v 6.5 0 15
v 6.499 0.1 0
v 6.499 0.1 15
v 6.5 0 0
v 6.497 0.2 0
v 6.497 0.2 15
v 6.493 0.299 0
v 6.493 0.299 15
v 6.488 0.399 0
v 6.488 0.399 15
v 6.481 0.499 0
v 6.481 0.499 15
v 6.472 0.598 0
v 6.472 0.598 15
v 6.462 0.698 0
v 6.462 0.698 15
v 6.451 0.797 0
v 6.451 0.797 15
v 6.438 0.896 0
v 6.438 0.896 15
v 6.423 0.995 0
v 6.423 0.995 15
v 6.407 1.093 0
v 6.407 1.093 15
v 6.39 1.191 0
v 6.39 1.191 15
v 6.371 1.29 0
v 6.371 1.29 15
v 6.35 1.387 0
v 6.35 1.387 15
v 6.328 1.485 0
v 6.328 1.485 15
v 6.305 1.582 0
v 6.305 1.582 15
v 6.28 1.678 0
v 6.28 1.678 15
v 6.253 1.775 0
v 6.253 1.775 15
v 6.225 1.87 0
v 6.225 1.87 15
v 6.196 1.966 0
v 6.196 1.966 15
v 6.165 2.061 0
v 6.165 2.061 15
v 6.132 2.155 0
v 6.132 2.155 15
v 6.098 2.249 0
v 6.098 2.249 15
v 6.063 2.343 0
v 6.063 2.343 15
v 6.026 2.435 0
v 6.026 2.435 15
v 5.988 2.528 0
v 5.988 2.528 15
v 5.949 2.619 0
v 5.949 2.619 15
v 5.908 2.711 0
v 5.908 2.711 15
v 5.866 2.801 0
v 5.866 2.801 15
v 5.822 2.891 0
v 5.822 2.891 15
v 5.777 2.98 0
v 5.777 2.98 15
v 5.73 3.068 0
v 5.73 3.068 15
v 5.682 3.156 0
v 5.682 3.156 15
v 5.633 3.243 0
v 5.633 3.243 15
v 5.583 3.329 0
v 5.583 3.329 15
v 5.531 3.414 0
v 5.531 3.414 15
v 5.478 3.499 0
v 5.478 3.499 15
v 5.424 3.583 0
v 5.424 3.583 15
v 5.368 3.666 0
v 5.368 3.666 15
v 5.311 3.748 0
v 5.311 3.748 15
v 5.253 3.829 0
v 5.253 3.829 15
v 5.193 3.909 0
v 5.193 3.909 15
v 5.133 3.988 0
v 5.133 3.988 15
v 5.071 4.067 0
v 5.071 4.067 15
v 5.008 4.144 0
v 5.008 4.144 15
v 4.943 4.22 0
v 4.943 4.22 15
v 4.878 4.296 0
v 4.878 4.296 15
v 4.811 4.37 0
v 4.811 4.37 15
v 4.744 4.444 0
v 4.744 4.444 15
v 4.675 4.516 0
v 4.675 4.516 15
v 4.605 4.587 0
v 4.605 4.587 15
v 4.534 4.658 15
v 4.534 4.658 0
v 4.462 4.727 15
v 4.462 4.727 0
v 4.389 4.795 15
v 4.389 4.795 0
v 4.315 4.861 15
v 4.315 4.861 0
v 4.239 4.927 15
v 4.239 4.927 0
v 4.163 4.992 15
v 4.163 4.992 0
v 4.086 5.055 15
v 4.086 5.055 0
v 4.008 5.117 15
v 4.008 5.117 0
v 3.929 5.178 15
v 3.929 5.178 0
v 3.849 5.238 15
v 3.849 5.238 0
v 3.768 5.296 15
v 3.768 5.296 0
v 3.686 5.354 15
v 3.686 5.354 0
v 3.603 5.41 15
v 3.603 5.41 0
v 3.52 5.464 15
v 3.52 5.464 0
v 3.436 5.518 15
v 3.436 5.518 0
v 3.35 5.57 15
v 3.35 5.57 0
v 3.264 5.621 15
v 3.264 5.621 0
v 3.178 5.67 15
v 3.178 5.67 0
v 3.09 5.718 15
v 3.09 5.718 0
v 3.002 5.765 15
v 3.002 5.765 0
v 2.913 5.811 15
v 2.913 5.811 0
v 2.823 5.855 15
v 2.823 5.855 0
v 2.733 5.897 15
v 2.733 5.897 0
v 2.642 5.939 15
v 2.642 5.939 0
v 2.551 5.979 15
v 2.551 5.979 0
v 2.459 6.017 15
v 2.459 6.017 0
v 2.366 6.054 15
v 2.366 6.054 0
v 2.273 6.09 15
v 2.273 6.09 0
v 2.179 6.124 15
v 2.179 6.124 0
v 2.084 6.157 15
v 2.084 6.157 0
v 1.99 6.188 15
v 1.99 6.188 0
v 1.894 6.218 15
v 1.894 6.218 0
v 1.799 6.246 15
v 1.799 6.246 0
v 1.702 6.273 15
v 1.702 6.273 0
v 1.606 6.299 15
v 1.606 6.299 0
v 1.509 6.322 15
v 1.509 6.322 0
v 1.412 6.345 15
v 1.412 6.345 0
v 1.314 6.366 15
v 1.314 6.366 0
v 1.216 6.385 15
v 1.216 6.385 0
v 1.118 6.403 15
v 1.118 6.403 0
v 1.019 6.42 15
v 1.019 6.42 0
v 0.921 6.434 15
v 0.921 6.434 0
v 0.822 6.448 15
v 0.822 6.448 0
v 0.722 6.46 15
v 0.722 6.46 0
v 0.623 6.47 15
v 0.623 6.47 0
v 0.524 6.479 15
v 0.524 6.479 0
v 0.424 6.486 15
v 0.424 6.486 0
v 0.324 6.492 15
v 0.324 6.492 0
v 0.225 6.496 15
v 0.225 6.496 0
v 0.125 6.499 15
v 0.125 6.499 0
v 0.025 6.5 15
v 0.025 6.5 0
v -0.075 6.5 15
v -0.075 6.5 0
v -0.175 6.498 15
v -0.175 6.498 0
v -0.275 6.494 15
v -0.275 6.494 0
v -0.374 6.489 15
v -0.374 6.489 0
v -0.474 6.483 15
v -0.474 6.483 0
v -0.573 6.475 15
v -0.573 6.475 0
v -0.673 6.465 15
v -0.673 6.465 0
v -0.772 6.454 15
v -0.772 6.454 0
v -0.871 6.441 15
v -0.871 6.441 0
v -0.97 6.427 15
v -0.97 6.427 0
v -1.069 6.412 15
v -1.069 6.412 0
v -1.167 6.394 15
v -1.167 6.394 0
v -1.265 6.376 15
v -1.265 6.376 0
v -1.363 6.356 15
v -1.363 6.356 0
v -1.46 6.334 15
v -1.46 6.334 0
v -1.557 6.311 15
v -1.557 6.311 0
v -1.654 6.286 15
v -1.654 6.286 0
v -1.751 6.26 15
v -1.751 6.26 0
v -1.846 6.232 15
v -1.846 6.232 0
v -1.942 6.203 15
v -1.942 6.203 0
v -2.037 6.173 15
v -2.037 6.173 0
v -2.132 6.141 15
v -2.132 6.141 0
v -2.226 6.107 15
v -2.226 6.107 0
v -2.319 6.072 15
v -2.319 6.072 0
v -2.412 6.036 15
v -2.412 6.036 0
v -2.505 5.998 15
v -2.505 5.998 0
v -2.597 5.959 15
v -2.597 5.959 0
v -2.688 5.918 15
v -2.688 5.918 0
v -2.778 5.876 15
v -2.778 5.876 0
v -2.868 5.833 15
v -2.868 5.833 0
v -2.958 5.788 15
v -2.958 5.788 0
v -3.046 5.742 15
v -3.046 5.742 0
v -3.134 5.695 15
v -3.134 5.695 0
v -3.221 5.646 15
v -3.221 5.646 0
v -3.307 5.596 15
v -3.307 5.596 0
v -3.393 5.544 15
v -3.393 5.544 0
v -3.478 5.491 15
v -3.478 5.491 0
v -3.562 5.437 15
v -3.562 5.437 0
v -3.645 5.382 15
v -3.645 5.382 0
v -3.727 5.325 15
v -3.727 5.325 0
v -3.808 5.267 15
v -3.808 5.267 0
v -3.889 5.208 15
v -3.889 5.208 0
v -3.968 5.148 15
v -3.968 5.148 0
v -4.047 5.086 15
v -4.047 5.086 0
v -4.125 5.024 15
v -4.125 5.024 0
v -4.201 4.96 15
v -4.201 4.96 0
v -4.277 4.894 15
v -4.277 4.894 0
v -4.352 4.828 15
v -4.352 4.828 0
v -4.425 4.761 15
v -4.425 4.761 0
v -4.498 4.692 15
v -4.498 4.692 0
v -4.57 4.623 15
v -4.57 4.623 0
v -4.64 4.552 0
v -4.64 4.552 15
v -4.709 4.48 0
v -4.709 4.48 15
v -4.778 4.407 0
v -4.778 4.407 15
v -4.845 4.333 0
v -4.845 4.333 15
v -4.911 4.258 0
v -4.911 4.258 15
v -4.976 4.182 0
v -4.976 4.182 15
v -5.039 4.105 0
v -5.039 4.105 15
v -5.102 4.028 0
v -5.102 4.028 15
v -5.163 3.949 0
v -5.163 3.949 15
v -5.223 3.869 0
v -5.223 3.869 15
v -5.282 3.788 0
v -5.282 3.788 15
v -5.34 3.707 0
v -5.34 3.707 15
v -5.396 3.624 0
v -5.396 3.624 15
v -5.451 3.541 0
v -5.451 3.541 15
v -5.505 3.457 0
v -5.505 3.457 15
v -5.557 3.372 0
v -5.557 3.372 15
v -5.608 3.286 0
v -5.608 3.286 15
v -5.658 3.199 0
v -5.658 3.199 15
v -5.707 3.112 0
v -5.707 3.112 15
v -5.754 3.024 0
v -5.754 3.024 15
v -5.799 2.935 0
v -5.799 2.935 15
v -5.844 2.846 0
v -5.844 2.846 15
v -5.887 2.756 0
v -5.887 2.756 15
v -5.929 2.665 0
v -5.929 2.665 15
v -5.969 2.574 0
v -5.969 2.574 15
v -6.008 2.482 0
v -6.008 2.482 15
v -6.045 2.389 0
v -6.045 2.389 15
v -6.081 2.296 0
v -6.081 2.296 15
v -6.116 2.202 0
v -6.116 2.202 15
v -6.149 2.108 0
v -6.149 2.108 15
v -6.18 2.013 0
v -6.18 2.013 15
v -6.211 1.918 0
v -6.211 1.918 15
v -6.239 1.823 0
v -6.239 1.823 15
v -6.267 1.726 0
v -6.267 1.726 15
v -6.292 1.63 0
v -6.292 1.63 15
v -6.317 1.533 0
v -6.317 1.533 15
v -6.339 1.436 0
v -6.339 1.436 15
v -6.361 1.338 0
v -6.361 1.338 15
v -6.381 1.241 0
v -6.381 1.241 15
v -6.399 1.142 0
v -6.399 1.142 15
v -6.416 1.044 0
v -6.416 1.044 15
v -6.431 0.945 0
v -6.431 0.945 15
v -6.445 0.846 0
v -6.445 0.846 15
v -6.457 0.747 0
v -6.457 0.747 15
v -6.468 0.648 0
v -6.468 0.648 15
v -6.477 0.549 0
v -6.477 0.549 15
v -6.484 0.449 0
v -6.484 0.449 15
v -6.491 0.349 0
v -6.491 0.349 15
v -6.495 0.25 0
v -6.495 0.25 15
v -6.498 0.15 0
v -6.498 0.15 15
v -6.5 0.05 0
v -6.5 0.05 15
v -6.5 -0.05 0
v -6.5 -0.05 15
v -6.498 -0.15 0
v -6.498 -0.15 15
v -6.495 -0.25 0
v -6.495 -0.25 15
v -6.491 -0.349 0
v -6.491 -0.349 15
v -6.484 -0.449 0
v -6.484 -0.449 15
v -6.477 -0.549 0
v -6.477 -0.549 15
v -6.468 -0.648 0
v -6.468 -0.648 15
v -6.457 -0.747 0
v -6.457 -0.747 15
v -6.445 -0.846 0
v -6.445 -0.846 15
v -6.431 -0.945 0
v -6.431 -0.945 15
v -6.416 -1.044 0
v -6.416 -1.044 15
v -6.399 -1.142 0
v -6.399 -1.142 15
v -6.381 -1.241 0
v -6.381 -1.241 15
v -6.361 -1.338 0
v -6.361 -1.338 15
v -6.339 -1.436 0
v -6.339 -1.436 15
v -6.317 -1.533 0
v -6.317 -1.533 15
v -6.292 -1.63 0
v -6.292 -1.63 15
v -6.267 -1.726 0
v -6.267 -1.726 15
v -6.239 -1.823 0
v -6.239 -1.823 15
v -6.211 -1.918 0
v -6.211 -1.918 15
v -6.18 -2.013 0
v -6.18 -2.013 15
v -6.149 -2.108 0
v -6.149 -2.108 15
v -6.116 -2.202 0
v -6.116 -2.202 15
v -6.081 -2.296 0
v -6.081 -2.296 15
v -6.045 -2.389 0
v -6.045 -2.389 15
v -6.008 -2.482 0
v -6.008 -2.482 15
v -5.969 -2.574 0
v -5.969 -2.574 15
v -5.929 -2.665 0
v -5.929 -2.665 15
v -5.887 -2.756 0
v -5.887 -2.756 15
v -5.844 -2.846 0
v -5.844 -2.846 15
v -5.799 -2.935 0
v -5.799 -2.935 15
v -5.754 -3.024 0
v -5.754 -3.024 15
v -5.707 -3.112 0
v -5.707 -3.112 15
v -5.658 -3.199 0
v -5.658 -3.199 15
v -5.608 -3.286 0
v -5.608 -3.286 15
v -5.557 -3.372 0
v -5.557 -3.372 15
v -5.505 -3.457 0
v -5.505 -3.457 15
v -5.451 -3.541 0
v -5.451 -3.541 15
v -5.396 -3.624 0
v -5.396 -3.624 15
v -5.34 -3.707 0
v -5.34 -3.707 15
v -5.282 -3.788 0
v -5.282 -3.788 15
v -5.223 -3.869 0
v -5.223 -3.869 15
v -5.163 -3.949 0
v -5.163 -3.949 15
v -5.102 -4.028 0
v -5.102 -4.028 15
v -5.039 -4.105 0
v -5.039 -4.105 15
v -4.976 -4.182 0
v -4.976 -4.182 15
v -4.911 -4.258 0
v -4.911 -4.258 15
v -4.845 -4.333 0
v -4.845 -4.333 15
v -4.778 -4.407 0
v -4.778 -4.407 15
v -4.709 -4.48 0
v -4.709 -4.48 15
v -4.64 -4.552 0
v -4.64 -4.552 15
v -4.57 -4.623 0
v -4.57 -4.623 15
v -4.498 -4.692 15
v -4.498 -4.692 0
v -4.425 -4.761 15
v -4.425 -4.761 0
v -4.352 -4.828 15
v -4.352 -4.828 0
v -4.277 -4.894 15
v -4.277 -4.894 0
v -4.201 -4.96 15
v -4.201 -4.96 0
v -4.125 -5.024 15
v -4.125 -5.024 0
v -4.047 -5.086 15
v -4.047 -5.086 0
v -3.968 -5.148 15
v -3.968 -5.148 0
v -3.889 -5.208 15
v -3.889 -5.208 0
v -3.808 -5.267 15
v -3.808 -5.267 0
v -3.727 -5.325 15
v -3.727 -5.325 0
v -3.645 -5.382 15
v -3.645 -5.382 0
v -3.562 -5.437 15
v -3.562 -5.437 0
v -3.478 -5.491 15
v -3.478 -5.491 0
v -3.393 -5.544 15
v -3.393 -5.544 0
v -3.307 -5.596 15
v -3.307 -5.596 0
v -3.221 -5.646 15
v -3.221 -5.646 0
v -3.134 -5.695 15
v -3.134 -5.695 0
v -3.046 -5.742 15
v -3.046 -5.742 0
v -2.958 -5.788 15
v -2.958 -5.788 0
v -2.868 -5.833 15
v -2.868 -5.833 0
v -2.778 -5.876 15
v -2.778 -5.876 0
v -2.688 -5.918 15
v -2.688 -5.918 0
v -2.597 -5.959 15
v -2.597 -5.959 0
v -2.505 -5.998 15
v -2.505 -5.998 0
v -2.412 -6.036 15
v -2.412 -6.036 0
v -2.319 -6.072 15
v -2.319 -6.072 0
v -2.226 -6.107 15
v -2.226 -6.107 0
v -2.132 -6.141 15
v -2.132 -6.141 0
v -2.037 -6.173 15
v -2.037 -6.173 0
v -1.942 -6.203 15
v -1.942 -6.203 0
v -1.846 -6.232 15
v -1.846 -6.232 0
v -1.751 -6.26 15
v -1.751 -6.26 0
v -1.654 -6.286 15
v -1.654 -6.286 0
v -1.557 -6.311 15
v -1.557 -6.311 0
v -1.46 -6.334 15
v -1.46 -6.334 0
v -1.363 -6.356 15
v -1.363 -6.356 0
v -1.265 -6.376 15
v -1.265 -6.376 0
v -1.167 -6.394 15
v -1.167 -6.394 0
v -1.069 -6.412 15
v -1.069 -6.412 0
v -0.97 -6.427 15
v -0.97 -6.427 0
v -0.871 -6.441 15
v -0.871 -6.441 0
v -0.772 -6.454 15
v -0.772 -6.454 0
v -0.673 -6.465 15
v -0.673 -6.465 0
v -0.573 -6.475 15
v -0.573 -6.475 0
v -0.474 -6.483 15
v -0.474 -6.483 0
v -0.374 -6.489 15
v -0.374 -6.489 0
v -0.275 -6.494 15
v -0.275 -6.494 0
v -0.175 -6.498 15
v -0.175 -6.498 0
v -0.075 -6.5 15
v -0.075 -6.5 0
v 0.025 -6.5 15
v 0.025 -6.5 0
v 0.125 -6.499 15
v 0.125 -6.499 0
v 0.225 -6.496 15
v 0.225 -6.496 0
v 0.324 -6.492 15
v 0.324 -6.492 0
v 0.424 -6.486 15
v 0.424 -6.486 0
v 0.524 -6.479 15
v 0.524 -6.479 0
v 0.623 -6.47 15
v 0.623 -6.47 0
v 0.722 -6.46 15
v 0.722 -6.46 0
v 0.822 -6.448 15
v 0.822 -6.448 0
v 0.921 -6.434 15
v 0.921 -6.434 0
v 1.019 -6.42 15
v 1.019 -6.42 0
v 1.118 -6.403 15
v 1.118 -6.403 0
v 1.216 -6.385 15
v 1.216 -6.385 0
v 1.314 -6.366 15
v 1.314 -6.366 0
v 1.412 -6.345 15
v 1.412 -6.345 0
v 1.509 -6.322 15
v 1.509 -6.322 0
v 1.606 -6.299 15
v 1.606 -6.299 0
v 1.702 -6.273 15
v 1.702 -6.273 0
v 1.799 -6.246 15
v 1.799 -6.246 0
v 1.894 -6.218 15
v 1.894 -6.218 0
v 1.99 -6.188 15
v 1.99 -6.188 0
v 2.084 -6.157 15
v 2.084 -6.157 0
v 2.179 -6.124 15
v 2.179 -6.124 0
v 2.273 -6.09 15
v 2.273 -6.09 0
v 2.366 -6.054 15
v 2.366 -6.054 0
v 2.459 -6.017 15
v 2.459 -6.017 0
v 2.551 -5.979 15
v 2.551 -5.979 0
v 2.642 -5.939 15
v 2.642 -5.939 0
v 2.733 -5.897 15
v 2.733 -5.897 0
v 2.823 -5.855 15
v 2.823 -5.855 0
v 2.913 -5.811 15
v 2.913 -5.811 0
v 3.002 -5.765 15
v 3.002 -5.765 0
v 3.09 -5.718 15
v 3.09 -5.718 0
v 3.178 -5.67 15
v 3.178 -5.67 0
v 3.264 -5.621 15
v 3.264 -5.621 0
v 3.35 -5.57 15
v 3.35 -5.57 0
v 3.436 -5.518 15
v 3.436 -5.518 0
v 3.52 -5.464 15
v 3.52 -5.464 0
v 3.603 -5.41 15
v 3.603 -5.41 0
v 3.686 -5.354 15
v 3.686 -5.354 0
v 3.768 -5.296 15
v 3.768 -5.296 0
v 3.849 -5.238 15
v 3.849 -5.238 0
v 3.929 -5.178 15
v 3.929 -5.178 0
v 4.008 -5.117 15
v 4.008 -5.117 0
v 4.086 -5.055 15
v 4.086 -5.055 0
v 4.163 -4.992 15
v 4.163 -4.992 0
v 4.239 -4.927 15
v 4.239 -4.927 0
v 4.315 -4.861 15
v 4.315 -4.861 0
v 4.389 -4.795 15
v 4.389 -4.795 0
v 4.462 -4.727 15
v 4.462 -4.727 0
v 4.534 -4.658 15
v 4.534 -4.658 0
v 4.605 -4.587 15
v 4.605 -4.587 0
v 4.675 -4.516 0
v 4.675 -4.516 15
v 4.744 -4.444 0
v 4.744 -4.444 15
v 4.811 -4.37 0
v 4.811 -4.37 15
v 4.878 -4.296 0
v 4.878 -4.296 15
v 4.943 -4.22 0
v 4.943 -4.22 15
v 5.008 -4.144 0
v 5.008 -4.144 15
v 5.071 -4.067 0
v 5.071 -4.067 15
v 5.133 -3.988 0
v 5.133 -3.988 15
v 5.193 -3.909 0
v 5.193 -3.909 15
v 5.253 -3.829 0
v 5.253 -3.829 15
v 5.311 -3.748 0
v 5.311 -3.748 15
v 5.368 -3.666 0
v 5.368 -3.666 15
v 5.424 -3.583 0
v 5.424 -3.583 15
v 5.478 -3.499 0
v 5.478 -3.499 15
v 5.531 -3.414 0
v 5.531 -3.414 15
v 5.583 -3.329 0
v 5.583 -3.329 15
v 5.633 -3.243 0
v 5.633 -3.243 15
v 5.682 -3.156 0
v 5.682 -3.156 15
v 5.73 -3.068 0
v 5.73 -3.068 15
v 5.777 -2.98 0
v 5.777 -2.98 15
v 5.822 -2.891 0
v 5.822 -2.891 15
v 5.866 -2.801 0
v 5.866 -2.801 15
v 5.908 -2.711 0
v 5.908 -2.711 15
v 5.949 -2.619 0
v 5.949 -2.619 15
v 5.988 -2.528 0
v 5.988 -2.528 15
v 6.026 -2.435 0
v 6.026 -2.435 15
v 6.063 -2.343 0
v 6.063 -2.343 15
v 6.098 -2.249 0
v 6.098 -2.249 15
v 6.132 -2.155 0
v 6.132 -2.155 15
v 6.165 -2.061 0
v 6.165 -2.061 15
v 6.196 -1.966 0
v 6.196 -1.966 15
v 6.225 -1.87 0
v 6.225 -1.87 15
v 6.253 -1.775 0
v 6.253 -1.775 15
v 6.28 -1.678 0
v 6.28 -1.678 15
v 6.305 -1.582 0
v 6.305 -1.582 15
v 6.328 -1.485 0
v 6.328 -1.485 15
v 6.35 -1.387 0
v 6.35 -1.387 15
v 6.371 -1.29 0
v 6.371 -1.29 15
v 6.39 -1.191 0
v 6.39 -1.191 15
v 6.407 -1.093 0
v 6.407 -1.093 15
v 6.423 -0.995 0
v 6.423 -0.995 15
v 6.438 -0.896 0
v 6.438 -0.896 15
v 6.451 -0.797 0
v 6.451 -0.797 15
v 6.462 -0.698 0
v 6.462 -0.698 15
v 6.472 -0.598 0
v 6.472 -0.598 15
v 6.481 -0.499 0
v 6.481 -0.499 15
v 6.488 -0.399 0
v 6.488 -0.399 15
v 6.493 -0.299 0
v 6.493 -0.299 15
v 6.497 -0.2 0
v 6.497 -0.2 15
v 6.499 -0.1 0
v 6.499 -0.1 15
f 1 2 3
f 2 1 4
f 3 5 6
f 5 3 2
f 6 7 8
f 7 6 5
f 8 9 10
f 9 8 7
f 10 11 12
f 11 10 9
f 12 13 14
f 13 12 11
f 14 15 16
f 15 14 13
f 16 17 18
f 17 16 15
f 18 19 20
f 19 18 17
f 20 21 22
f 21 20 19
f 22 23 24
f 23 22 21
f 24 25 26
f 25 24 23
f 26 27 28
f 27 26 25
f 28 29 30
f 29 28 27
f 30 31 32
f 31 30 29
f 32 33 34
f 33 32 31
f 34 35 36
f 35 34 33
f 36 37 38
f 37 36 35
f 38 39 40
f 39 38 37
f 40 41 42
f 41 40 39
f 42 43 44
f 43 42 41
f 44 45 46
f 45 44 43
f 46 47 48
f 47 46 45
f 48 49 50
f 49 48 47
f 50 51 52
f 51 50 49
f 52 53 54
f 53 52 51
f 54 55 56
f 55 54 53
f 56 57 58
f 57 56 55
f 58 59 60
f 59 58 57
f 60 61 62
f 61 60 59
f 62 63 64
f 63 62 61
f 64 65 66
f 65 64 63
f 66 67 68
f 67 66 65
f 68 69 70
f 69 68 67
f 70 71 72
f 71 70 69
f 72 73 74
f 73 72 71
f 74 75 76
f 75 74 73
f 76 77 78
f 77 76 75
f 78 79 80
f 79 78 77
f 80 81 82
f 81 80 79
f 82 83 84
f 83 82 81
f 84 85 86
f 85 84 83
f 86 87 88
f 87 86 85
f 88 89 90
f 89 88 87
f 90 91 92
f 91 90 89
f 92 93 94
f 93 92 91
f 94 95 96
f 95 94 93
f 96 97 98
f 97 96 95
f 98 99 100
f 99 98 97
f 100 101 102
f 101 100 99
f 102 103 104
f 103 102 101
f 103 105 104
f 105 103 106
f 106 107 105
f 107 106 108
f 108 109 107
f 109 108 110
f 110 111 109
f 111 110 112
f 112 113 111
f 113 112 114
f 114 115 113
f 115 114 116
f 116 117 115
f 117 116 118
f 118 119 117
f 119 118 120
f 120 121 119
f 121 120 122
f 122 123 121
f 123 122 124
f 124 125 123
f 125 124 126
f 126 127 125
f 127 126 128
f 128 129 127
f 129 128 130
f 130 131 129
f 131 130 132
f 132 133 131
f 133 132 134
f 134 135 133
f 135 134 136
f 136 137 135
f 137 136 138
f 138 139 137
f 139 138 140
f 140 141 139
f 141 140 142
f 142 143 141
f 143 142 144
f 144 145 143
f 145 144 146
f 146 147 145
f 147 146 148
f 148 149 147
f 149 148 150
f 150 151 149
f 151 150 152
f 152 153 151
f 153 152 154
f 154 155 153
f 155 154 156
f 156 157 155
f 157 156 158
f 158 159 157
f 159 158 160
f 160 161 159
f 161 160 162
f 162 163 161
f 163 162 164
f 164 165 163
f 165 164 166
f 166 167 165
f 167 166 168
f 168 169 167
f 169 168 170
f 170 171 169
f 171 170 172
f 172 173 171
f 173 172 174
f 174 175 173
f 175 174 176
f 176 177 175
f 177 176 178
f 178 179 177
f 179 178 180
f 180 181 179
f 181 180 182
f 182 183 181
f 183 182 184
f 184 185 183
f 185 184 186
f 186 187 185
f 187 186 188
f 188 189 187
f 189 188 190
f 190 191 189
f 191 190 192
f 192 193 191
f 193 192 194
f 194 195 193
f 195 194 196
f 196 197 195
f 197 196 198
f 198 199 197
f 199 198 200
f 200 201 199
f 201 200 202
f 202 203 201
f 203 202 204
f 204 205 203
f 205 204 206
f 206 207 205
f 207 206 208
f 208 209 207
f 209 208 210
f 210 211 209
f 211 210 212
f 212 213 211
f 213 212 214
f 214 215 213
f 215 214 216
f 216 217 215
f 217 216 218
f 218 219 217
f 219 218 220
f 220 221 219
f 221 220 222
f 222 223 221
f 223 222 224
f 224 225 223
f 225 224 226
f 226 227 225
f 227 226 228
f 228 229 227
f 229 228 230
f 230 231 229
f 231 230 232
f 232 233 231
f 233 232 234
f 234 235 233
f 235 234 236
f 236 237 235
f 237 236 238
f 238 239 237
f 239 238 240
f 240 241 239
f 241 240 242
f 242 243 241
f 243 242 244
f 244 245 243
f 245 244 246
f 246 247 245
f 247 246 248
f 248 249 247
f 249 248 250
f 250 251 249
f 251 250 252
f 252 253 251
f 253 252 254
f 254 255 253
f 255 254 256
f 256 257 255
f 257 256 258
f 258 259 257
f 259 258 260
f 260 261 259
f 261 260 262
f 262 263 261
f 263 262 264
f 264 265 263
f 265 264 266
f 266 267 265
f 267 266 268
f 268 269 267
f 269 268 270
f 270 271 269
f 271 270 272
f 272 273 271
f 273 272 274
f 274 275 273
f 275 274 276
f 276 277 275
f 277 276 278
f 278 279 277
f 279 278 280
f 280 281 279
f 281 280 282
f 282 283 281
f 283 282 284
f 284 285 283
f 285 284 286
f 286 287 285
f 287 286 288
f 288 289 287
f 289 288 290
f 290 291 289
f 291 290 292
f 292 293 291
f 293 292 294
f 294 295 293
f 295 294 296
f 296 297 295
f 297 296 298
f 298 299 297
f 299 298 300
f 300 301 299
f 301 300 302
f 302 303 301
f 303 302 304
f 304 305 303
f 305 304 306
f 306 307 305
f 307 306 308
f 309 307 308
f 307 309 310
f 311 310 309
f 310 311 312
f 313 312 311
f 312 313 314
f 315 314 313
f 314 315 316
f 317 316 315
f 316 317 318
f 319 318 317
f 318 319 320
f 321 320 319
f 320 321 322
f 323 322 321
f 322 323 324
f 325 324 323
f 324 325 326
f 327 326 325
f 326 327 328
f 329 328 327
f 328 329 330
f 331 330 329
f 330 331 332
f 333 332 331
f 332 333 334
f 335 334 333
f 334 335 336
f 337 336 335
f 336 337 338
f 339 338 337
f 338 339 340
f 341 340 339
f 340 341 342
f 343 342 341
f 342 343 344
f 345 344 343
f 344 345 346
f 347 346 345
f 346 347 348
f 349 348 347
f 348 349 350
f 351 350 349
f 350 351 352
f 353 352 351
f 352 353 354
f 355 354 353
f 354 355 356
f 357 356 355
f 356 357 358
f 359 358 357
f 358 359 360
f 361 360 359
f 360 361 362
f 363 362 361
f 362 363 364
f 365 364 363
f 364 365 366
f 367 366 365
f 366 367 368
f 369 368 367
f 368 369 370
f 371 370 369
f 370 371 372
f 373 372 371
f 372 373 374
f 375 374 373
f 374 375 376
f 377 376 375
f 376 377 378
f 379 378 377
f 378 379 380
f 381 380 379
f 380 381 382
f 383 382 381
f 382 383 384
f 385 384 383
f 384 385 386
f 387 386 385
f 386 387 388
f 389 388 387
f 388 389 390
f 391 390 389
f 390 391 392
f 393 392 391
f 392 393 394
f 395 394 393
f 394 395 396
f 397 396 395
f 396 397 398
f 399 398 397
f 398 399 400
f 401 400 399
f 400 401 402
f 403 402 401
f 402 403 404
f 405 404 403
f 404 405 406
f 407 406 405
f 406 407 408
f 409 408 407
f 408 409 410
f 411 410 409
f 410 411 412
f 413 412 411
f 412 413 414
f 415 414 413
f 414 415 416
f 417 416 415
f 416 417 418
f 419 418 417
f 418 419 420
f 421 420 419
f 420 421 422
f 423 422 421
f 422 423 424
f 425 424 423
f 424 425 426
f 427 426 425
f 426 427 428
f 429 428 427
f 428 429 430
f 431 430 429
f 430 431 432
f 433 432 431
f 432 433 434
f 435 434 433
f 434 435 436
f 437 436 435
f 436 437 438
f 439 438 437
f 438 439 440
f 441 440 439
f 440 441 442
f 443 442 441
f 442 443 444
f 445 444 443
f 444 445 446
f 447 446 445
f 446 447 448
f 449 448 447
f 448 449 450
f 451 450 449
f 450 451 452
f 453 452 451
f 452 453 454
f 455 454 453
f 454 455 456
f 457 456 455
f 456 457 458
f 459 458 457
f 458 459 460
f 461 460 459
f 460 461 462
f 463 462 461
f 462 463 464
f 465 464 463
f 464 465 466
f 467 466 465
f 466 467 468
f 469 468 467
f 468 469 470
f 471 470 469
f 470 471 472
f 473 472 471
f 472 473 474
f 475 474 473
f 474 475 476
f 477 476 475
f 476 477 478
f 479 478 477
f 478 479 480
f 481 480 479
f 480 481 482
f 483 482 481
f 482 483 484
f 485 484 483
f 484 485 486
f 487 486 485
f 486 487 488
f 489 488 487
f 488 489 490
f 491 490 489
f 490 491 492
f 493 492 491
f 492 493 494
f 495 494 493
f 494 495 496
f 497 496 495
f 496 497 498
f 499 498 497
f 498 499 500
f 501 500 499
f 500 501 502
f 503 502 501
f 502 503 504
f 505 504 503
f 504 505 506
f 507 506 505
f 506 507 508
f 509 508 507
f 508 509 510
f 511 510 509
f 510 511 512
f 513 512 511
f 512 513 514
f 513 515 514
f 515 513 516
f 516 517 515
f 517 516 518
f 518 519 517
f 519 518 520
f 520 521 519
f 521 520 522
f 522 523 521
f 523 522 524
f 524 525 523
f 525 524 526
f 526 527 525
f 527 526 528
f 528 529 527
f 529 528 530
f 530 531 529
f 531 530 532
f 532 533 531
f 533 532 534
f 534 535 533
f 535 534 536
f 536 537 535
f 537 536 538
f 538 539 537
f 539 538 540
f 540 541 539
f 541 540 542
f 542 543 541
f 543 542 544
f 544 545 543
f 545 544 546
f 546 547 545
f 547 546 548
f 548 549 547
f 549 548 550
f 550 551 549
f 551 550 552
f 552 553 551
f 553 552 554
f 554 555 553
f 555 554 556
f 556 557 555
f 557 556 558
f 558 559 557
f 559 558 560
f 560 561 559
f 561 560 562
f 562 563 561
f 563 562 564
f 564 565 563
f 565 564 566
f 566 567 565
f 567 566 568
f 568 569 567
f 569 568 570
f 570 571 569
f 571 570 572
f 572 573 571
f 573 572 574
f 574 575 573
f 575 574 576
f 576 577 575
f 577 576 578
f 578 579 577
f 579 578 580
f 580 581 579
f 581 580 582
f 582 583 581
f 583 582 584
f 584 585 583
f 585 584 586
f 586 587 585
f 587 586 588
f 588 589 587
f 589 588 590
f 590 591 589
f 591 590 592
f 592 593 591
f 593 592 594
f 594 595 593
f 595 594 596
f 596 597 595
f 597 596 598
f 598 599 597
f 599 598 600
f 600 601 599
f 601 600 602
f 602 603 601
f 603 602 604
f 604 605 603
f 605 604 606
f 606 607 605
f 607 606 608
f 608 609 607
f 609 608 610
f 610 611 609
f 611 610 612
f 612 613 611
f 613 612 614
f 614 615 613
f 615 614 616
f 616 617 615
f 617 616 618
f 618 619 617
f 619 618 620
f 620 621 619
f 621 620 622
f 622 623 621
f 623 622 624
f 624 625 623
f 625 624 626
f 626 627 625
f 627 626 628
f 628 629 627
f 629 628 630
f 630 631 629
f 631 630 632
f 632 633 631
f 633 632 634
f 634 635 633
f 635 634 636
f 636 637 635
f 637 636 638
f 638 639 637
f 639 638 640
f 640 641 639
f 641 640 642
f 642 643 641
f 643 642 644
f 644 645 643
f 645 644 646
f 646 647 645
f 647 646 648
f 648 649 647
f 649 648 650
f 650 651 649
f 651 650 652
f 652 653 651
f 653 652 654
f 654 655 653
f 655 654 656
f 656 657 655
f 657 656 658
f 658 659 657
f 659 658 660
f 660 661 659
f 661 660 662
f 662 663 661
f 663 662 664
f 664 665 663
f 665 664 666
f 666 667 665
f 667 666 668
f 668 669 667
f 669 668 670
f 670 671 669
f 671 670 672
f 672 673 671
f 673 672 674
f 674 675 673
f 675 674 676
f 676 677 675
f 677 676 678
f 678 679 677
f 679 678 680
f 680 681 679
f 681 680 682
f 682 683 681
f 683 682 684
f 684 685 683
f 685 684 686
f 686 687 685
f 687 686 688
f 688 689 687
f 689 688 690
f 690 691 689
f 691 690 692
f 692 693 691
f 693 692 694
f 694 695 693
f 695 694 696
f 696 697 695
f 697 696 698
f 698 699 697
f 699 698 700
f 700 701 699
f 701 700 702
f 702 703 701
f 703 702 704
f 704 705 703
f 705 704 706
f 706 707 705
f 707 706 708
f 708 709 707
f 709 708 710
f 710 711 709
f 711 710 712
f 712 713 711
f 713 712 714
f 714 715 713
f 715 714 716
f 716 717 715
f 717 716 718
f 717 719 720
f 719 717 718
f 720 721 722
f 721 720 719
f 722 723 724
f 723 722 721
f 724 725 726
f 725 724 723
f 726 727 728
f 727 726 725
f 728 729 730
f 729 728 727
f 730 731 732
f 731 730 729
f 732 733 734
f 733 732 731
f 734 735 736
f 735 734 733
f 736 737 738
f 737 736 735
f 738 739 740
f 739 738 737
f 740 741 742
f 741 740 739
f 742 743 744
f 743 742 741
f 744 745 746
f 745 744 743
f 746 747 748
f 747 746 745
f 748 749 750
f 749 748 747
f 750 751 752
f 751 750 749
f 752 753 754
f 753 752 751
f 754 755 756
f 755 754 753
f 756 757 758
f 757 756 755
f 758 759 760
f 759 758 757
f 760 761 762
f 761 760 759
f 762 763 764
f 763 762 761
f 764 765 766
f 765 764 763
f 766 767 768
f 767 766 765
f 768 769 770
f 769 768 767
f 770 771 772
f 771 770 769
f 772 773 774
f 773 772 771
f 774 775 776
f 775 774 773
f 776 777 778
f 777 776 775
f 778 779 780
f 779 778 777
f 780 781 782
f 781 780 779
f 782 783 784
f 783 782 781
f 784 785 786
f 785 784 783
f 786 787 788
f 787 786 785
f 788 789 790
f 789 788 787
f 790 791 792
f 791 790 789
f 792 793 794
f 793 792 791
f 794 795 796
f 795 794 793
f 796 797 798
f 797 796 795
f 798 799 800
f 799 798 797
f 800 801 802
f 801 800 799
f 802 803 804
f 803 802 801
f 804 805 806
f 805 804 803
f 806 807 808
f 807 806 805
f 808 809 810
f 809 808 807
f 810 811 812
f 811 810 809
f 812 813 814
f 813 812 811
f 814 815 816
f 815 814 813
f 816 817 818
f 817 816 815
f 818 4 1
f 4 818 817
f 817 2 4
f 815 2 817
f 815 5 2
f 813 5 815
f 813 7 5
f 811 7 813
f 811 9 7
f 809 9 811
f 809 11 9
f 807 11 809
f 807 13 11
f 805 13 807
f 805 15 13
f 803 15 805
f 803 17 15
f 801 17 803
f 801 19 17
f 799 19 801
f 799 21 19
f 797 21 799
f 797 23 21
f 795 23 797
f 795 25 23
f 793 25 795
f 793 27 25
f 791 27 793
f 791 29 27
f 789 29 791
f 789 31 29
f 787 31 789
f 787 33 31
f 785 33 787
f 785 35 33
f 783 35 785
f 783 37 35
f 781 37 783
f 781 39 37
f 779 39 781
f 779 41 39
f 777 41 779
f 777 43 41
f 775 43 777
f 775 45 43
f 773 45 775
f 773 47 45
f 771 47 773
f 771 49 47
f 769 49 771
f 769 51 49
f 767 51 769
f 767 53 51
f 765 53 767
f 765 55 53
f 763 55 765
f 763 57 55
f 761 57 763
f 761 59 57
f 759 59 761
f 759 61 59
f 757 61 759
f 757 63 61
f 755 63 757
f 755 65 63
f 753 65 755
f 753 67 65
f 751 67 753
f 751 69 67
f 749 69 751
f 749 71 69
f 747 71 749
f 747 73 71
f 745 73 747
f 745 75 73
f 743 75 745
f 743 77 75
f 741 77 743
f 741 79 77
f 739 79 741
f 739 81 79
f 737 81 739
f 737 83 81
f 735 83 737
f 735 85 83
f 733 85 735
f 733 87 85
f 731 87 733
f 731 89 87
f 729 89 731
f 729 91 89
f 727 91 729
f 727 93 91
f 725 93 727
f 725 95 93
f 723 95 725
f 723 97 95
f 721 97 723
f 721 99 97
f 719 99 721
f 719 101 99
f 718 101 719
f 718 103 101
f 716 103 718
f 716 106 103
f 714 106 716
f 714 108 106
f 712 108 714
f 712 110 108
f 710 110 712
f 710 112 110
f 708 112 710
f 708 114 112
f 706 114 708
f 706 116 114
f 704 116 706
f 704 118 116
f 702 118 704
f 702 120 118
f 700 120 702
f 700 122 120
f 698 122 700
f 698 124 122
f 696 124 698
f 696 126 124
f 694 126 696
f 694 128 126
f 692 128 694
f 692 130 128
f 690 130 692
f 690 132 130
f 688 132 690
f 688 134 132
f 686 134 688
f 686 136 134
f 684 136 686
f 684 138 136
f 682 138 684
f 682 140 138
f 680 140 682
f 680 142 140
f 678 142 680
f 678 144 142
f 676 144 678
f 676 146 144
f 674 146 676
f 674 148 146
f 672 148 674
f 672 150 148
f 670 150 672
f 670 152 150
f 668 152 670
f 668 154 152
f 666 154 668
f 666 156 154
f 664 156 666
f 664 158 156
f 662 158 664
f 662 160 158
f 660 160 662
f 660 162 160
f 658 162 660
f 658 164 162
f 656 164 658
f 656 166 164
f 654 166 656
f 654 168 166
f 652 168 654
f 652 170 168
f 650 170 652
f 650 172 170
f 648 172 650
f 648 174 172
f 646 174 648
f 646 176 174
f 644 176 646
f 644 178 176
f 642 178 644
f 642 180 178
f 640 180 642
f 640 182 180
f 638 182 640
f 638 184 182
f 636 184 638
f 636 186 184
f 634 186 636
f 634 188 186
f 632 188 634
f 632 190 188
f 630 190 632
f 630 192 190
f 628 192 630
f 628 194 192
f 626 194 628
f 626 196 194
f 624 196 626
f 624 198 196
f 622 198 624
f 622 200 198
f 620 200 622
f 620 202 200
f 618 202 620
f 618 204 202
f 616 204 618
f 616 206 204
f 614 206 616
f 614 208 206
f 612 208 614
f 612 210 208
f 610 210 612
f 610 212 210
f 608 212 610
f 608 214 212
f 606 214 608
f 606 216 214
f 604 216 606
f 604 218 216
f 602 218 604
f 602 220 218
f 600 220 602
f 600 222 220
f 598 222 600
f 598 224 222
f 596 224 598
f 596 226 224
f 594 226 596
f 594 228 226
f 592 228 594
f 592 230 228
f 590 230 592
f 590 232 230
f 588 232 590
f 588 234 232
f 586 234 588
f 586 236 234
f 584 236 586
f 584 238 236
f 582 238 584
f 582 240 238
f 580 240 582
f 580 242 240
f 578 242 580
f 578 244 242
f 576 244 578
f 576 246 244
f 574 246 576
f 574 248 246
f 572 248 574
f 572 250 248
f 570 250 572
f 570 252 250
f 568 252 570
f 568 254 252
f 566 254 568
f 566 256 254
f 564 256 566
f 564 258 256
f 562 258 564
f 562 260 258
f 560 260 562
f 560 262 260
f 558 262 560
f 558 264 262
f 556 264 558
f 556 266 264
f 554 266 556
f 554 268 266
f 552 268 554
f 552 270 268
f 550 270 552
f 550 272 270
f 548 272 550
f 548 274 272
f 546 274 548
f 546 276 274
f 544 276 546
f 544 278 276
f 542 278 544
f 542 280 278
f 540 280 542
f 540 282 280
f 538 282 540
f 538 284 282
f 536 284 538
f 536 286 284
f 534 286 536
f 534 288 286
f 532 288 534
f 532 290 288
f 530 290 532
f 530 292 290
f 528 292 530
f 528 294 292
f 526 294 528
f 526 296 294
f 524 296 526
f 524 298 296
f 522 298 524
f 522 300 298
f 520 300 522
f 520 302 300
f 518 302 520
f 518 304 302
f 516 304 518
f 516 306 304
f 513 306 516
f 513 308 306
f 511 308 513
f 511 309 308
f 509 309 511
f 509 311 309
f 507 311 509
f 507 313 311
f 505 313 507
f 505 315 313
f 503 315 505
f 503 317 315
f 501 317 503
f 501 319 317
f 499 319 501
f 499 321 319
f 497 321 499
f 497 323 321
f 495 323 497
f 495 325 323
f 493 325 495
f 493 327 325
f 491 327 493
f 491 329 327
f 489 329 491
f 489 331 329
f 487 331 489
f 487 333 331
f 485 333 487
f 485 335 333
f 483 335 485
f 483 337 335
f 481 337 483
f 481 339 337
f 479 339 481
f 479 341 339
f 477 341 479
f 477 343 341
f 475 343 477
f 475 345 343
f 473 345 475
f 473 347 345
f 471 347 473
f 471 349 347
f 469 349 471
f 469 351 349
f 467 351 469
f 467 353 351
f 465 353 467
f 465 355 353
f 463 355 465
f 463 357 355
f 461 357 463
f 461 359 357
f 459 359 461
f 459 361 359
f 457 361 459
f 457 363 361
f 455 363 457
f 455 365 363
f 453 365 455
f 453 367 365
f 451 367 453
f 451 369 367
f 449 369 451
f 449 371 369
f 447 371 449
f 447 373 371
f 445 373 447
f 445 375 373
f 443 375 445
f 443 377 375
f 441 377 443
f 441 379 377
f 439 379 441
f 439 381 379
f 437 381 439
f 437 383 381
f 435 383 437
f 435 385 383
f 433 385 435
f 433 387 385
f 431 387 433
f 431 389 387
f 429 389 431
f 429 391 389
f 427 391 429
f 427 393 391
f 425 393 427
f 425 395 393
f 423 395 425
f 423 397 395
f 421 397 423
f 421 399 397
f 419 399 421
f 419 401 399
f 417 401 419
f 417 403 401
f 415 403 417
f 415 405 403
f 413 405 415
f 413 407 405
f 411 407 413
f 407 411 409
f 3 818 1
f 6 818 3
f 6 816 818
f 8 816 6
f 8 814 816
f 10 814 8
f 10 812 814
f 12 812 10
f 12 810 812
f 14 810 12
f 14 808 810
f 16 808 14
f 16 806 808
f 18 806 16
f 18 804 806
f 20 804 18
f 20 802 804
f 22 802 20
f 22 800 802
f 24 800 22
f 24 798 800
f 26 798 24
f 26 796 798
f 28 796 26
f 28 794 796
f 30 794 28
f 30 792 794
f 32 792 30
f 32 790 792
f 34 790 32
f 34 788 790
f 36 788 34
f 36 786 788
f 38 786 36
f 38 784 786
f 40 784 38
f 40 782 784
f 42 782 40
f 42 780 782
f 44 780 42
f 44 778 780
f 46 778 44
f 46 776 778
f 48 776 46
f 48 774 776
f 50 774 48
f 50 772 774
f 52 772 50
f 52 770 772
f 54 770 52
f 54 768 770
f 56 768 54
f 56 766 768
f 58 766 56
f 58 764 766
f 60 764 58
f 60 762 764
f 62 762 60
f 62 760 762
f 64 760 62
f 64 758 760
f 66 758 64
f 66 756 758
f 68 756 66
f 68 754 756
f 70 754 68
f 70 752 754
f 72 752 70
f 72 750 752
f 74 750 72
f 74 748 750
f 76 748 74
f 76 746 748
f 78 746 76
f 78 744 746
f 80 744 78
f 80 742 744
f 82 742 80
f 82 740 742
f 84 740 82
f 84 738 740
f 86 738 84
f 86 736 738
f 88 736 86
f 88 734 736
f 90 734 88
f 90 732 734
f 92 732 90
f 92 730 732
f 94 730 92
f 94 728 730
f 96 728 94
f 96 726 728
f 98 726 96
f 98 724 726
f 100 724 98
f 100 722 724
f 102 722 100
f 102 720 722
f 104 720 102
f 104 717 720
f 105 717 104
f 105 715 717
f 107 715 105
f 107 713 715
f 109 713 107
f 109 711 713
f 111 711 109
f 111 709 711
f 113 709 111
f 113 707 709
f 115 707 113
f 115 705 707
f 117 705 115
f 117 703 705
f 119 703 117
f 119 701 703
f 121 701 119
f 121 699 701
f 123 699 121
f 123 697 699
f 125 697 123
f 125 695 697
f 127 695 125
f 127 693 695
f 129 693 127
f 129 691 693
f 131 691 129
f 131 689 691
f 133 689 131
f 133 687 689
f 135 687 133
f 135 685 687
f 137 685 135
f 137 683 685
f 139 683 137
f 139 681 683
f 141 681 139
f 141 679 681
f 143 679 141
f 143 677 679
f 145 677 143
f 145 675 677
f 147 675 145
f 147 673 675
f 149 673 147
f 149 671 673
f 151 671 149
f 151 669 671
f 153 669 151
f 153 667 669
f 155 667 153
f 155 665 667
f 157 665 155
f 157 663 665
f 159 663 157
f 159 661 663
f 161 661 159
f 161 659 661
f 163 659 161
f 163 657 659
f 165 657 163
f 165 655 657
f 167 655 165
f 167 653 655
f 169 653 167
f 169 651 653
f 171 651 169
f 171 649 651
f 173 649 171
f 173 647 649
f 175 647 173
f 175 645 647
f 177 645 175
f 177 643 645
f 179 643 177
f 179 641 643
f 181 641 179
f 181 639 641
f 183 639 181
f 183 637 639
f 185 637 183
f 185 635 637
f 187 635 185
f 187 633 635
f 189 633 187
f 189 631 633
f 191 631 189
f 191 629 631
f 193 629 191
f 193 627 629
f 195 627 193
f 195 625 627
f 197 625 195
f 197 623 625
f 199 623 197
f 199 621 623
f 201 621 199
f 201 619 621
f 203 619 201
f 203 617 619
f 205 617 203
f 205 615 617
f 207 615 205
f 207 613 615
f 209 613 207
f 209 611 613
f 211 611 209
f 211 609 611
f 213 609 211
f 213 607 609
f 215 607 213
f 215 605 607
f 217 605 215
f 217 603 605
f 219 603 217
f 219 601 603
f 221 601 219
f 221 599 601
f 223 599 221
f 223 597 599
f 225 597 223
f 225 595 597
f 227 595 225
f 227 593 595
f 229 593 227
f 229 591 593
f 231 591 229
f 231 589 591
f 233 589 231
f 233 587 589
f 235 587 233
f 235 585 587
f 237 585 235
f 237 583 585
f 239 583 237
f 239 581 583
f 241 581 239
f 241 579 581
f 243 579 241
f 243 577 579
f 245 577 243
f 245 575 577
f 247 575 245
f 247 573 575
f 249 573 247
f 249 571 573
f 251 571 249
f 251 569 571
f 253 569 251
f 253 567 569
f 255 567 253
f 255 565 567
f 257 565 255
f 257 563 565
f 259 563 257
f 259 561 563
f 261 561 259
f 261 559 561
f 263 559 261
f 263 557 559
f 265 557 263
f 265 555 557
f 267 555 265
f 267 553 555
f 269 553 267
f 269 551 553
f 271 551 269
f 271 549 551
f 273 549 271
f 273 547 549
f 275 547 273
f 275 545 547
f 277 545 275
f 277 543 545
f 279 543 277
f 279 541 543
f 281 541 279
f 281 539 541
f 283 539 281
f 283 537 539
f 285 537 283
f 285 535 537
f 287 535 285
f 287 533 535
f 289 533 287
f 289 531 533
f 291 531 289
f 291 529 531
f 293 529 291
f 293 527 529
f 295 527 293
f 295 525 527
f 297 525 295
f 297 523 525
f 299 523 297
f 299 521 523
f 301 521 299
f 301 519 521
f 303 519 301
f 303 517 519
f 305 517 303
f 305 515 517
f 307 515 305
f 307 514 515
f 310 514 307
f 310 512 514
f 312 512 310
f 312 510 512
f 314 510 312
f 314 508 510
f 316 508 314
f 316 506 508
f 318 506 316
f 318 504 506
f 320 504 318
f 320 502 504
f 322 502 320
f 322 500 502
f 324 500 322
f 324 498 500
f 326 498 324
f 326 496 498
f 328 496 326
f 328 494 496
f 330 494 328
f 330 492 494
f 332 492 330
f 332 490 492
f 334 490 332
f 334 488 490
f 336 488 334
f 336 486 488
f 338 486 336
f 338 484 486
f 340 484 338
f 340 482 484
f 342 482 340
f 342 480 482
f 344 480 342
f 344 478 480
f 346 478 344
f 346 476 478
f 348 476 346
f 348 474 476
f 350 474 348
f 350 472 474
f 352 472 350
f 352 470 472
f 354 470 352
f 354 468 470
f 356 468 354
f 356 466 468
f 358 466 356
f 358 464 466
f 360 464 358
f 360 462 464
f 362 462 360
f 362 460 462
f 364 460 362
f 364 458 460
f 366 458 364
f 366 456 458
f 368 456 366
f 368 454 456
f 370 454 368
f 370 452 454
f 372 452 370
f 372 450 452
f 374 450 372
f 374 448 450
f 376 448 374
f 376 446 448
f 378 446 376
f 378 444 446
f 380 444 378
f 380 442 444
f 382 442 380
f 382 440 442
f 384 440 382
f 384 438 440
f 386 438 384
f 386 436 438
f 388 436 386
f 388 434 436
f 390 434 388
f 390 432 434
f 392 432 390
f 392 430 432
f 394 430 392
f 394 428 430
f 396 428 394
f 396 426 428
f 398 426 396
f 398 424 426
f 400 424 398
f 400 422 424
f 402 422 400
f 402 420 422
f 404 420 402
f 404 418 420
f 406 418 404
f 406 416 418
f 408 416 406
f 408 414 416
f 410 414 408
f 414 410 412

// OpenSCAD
$fs = $preview ? 1 : 0.1;
$fa = $preview ? 3 : 0.1;
cylinder(15, 13/2, 13/2);
